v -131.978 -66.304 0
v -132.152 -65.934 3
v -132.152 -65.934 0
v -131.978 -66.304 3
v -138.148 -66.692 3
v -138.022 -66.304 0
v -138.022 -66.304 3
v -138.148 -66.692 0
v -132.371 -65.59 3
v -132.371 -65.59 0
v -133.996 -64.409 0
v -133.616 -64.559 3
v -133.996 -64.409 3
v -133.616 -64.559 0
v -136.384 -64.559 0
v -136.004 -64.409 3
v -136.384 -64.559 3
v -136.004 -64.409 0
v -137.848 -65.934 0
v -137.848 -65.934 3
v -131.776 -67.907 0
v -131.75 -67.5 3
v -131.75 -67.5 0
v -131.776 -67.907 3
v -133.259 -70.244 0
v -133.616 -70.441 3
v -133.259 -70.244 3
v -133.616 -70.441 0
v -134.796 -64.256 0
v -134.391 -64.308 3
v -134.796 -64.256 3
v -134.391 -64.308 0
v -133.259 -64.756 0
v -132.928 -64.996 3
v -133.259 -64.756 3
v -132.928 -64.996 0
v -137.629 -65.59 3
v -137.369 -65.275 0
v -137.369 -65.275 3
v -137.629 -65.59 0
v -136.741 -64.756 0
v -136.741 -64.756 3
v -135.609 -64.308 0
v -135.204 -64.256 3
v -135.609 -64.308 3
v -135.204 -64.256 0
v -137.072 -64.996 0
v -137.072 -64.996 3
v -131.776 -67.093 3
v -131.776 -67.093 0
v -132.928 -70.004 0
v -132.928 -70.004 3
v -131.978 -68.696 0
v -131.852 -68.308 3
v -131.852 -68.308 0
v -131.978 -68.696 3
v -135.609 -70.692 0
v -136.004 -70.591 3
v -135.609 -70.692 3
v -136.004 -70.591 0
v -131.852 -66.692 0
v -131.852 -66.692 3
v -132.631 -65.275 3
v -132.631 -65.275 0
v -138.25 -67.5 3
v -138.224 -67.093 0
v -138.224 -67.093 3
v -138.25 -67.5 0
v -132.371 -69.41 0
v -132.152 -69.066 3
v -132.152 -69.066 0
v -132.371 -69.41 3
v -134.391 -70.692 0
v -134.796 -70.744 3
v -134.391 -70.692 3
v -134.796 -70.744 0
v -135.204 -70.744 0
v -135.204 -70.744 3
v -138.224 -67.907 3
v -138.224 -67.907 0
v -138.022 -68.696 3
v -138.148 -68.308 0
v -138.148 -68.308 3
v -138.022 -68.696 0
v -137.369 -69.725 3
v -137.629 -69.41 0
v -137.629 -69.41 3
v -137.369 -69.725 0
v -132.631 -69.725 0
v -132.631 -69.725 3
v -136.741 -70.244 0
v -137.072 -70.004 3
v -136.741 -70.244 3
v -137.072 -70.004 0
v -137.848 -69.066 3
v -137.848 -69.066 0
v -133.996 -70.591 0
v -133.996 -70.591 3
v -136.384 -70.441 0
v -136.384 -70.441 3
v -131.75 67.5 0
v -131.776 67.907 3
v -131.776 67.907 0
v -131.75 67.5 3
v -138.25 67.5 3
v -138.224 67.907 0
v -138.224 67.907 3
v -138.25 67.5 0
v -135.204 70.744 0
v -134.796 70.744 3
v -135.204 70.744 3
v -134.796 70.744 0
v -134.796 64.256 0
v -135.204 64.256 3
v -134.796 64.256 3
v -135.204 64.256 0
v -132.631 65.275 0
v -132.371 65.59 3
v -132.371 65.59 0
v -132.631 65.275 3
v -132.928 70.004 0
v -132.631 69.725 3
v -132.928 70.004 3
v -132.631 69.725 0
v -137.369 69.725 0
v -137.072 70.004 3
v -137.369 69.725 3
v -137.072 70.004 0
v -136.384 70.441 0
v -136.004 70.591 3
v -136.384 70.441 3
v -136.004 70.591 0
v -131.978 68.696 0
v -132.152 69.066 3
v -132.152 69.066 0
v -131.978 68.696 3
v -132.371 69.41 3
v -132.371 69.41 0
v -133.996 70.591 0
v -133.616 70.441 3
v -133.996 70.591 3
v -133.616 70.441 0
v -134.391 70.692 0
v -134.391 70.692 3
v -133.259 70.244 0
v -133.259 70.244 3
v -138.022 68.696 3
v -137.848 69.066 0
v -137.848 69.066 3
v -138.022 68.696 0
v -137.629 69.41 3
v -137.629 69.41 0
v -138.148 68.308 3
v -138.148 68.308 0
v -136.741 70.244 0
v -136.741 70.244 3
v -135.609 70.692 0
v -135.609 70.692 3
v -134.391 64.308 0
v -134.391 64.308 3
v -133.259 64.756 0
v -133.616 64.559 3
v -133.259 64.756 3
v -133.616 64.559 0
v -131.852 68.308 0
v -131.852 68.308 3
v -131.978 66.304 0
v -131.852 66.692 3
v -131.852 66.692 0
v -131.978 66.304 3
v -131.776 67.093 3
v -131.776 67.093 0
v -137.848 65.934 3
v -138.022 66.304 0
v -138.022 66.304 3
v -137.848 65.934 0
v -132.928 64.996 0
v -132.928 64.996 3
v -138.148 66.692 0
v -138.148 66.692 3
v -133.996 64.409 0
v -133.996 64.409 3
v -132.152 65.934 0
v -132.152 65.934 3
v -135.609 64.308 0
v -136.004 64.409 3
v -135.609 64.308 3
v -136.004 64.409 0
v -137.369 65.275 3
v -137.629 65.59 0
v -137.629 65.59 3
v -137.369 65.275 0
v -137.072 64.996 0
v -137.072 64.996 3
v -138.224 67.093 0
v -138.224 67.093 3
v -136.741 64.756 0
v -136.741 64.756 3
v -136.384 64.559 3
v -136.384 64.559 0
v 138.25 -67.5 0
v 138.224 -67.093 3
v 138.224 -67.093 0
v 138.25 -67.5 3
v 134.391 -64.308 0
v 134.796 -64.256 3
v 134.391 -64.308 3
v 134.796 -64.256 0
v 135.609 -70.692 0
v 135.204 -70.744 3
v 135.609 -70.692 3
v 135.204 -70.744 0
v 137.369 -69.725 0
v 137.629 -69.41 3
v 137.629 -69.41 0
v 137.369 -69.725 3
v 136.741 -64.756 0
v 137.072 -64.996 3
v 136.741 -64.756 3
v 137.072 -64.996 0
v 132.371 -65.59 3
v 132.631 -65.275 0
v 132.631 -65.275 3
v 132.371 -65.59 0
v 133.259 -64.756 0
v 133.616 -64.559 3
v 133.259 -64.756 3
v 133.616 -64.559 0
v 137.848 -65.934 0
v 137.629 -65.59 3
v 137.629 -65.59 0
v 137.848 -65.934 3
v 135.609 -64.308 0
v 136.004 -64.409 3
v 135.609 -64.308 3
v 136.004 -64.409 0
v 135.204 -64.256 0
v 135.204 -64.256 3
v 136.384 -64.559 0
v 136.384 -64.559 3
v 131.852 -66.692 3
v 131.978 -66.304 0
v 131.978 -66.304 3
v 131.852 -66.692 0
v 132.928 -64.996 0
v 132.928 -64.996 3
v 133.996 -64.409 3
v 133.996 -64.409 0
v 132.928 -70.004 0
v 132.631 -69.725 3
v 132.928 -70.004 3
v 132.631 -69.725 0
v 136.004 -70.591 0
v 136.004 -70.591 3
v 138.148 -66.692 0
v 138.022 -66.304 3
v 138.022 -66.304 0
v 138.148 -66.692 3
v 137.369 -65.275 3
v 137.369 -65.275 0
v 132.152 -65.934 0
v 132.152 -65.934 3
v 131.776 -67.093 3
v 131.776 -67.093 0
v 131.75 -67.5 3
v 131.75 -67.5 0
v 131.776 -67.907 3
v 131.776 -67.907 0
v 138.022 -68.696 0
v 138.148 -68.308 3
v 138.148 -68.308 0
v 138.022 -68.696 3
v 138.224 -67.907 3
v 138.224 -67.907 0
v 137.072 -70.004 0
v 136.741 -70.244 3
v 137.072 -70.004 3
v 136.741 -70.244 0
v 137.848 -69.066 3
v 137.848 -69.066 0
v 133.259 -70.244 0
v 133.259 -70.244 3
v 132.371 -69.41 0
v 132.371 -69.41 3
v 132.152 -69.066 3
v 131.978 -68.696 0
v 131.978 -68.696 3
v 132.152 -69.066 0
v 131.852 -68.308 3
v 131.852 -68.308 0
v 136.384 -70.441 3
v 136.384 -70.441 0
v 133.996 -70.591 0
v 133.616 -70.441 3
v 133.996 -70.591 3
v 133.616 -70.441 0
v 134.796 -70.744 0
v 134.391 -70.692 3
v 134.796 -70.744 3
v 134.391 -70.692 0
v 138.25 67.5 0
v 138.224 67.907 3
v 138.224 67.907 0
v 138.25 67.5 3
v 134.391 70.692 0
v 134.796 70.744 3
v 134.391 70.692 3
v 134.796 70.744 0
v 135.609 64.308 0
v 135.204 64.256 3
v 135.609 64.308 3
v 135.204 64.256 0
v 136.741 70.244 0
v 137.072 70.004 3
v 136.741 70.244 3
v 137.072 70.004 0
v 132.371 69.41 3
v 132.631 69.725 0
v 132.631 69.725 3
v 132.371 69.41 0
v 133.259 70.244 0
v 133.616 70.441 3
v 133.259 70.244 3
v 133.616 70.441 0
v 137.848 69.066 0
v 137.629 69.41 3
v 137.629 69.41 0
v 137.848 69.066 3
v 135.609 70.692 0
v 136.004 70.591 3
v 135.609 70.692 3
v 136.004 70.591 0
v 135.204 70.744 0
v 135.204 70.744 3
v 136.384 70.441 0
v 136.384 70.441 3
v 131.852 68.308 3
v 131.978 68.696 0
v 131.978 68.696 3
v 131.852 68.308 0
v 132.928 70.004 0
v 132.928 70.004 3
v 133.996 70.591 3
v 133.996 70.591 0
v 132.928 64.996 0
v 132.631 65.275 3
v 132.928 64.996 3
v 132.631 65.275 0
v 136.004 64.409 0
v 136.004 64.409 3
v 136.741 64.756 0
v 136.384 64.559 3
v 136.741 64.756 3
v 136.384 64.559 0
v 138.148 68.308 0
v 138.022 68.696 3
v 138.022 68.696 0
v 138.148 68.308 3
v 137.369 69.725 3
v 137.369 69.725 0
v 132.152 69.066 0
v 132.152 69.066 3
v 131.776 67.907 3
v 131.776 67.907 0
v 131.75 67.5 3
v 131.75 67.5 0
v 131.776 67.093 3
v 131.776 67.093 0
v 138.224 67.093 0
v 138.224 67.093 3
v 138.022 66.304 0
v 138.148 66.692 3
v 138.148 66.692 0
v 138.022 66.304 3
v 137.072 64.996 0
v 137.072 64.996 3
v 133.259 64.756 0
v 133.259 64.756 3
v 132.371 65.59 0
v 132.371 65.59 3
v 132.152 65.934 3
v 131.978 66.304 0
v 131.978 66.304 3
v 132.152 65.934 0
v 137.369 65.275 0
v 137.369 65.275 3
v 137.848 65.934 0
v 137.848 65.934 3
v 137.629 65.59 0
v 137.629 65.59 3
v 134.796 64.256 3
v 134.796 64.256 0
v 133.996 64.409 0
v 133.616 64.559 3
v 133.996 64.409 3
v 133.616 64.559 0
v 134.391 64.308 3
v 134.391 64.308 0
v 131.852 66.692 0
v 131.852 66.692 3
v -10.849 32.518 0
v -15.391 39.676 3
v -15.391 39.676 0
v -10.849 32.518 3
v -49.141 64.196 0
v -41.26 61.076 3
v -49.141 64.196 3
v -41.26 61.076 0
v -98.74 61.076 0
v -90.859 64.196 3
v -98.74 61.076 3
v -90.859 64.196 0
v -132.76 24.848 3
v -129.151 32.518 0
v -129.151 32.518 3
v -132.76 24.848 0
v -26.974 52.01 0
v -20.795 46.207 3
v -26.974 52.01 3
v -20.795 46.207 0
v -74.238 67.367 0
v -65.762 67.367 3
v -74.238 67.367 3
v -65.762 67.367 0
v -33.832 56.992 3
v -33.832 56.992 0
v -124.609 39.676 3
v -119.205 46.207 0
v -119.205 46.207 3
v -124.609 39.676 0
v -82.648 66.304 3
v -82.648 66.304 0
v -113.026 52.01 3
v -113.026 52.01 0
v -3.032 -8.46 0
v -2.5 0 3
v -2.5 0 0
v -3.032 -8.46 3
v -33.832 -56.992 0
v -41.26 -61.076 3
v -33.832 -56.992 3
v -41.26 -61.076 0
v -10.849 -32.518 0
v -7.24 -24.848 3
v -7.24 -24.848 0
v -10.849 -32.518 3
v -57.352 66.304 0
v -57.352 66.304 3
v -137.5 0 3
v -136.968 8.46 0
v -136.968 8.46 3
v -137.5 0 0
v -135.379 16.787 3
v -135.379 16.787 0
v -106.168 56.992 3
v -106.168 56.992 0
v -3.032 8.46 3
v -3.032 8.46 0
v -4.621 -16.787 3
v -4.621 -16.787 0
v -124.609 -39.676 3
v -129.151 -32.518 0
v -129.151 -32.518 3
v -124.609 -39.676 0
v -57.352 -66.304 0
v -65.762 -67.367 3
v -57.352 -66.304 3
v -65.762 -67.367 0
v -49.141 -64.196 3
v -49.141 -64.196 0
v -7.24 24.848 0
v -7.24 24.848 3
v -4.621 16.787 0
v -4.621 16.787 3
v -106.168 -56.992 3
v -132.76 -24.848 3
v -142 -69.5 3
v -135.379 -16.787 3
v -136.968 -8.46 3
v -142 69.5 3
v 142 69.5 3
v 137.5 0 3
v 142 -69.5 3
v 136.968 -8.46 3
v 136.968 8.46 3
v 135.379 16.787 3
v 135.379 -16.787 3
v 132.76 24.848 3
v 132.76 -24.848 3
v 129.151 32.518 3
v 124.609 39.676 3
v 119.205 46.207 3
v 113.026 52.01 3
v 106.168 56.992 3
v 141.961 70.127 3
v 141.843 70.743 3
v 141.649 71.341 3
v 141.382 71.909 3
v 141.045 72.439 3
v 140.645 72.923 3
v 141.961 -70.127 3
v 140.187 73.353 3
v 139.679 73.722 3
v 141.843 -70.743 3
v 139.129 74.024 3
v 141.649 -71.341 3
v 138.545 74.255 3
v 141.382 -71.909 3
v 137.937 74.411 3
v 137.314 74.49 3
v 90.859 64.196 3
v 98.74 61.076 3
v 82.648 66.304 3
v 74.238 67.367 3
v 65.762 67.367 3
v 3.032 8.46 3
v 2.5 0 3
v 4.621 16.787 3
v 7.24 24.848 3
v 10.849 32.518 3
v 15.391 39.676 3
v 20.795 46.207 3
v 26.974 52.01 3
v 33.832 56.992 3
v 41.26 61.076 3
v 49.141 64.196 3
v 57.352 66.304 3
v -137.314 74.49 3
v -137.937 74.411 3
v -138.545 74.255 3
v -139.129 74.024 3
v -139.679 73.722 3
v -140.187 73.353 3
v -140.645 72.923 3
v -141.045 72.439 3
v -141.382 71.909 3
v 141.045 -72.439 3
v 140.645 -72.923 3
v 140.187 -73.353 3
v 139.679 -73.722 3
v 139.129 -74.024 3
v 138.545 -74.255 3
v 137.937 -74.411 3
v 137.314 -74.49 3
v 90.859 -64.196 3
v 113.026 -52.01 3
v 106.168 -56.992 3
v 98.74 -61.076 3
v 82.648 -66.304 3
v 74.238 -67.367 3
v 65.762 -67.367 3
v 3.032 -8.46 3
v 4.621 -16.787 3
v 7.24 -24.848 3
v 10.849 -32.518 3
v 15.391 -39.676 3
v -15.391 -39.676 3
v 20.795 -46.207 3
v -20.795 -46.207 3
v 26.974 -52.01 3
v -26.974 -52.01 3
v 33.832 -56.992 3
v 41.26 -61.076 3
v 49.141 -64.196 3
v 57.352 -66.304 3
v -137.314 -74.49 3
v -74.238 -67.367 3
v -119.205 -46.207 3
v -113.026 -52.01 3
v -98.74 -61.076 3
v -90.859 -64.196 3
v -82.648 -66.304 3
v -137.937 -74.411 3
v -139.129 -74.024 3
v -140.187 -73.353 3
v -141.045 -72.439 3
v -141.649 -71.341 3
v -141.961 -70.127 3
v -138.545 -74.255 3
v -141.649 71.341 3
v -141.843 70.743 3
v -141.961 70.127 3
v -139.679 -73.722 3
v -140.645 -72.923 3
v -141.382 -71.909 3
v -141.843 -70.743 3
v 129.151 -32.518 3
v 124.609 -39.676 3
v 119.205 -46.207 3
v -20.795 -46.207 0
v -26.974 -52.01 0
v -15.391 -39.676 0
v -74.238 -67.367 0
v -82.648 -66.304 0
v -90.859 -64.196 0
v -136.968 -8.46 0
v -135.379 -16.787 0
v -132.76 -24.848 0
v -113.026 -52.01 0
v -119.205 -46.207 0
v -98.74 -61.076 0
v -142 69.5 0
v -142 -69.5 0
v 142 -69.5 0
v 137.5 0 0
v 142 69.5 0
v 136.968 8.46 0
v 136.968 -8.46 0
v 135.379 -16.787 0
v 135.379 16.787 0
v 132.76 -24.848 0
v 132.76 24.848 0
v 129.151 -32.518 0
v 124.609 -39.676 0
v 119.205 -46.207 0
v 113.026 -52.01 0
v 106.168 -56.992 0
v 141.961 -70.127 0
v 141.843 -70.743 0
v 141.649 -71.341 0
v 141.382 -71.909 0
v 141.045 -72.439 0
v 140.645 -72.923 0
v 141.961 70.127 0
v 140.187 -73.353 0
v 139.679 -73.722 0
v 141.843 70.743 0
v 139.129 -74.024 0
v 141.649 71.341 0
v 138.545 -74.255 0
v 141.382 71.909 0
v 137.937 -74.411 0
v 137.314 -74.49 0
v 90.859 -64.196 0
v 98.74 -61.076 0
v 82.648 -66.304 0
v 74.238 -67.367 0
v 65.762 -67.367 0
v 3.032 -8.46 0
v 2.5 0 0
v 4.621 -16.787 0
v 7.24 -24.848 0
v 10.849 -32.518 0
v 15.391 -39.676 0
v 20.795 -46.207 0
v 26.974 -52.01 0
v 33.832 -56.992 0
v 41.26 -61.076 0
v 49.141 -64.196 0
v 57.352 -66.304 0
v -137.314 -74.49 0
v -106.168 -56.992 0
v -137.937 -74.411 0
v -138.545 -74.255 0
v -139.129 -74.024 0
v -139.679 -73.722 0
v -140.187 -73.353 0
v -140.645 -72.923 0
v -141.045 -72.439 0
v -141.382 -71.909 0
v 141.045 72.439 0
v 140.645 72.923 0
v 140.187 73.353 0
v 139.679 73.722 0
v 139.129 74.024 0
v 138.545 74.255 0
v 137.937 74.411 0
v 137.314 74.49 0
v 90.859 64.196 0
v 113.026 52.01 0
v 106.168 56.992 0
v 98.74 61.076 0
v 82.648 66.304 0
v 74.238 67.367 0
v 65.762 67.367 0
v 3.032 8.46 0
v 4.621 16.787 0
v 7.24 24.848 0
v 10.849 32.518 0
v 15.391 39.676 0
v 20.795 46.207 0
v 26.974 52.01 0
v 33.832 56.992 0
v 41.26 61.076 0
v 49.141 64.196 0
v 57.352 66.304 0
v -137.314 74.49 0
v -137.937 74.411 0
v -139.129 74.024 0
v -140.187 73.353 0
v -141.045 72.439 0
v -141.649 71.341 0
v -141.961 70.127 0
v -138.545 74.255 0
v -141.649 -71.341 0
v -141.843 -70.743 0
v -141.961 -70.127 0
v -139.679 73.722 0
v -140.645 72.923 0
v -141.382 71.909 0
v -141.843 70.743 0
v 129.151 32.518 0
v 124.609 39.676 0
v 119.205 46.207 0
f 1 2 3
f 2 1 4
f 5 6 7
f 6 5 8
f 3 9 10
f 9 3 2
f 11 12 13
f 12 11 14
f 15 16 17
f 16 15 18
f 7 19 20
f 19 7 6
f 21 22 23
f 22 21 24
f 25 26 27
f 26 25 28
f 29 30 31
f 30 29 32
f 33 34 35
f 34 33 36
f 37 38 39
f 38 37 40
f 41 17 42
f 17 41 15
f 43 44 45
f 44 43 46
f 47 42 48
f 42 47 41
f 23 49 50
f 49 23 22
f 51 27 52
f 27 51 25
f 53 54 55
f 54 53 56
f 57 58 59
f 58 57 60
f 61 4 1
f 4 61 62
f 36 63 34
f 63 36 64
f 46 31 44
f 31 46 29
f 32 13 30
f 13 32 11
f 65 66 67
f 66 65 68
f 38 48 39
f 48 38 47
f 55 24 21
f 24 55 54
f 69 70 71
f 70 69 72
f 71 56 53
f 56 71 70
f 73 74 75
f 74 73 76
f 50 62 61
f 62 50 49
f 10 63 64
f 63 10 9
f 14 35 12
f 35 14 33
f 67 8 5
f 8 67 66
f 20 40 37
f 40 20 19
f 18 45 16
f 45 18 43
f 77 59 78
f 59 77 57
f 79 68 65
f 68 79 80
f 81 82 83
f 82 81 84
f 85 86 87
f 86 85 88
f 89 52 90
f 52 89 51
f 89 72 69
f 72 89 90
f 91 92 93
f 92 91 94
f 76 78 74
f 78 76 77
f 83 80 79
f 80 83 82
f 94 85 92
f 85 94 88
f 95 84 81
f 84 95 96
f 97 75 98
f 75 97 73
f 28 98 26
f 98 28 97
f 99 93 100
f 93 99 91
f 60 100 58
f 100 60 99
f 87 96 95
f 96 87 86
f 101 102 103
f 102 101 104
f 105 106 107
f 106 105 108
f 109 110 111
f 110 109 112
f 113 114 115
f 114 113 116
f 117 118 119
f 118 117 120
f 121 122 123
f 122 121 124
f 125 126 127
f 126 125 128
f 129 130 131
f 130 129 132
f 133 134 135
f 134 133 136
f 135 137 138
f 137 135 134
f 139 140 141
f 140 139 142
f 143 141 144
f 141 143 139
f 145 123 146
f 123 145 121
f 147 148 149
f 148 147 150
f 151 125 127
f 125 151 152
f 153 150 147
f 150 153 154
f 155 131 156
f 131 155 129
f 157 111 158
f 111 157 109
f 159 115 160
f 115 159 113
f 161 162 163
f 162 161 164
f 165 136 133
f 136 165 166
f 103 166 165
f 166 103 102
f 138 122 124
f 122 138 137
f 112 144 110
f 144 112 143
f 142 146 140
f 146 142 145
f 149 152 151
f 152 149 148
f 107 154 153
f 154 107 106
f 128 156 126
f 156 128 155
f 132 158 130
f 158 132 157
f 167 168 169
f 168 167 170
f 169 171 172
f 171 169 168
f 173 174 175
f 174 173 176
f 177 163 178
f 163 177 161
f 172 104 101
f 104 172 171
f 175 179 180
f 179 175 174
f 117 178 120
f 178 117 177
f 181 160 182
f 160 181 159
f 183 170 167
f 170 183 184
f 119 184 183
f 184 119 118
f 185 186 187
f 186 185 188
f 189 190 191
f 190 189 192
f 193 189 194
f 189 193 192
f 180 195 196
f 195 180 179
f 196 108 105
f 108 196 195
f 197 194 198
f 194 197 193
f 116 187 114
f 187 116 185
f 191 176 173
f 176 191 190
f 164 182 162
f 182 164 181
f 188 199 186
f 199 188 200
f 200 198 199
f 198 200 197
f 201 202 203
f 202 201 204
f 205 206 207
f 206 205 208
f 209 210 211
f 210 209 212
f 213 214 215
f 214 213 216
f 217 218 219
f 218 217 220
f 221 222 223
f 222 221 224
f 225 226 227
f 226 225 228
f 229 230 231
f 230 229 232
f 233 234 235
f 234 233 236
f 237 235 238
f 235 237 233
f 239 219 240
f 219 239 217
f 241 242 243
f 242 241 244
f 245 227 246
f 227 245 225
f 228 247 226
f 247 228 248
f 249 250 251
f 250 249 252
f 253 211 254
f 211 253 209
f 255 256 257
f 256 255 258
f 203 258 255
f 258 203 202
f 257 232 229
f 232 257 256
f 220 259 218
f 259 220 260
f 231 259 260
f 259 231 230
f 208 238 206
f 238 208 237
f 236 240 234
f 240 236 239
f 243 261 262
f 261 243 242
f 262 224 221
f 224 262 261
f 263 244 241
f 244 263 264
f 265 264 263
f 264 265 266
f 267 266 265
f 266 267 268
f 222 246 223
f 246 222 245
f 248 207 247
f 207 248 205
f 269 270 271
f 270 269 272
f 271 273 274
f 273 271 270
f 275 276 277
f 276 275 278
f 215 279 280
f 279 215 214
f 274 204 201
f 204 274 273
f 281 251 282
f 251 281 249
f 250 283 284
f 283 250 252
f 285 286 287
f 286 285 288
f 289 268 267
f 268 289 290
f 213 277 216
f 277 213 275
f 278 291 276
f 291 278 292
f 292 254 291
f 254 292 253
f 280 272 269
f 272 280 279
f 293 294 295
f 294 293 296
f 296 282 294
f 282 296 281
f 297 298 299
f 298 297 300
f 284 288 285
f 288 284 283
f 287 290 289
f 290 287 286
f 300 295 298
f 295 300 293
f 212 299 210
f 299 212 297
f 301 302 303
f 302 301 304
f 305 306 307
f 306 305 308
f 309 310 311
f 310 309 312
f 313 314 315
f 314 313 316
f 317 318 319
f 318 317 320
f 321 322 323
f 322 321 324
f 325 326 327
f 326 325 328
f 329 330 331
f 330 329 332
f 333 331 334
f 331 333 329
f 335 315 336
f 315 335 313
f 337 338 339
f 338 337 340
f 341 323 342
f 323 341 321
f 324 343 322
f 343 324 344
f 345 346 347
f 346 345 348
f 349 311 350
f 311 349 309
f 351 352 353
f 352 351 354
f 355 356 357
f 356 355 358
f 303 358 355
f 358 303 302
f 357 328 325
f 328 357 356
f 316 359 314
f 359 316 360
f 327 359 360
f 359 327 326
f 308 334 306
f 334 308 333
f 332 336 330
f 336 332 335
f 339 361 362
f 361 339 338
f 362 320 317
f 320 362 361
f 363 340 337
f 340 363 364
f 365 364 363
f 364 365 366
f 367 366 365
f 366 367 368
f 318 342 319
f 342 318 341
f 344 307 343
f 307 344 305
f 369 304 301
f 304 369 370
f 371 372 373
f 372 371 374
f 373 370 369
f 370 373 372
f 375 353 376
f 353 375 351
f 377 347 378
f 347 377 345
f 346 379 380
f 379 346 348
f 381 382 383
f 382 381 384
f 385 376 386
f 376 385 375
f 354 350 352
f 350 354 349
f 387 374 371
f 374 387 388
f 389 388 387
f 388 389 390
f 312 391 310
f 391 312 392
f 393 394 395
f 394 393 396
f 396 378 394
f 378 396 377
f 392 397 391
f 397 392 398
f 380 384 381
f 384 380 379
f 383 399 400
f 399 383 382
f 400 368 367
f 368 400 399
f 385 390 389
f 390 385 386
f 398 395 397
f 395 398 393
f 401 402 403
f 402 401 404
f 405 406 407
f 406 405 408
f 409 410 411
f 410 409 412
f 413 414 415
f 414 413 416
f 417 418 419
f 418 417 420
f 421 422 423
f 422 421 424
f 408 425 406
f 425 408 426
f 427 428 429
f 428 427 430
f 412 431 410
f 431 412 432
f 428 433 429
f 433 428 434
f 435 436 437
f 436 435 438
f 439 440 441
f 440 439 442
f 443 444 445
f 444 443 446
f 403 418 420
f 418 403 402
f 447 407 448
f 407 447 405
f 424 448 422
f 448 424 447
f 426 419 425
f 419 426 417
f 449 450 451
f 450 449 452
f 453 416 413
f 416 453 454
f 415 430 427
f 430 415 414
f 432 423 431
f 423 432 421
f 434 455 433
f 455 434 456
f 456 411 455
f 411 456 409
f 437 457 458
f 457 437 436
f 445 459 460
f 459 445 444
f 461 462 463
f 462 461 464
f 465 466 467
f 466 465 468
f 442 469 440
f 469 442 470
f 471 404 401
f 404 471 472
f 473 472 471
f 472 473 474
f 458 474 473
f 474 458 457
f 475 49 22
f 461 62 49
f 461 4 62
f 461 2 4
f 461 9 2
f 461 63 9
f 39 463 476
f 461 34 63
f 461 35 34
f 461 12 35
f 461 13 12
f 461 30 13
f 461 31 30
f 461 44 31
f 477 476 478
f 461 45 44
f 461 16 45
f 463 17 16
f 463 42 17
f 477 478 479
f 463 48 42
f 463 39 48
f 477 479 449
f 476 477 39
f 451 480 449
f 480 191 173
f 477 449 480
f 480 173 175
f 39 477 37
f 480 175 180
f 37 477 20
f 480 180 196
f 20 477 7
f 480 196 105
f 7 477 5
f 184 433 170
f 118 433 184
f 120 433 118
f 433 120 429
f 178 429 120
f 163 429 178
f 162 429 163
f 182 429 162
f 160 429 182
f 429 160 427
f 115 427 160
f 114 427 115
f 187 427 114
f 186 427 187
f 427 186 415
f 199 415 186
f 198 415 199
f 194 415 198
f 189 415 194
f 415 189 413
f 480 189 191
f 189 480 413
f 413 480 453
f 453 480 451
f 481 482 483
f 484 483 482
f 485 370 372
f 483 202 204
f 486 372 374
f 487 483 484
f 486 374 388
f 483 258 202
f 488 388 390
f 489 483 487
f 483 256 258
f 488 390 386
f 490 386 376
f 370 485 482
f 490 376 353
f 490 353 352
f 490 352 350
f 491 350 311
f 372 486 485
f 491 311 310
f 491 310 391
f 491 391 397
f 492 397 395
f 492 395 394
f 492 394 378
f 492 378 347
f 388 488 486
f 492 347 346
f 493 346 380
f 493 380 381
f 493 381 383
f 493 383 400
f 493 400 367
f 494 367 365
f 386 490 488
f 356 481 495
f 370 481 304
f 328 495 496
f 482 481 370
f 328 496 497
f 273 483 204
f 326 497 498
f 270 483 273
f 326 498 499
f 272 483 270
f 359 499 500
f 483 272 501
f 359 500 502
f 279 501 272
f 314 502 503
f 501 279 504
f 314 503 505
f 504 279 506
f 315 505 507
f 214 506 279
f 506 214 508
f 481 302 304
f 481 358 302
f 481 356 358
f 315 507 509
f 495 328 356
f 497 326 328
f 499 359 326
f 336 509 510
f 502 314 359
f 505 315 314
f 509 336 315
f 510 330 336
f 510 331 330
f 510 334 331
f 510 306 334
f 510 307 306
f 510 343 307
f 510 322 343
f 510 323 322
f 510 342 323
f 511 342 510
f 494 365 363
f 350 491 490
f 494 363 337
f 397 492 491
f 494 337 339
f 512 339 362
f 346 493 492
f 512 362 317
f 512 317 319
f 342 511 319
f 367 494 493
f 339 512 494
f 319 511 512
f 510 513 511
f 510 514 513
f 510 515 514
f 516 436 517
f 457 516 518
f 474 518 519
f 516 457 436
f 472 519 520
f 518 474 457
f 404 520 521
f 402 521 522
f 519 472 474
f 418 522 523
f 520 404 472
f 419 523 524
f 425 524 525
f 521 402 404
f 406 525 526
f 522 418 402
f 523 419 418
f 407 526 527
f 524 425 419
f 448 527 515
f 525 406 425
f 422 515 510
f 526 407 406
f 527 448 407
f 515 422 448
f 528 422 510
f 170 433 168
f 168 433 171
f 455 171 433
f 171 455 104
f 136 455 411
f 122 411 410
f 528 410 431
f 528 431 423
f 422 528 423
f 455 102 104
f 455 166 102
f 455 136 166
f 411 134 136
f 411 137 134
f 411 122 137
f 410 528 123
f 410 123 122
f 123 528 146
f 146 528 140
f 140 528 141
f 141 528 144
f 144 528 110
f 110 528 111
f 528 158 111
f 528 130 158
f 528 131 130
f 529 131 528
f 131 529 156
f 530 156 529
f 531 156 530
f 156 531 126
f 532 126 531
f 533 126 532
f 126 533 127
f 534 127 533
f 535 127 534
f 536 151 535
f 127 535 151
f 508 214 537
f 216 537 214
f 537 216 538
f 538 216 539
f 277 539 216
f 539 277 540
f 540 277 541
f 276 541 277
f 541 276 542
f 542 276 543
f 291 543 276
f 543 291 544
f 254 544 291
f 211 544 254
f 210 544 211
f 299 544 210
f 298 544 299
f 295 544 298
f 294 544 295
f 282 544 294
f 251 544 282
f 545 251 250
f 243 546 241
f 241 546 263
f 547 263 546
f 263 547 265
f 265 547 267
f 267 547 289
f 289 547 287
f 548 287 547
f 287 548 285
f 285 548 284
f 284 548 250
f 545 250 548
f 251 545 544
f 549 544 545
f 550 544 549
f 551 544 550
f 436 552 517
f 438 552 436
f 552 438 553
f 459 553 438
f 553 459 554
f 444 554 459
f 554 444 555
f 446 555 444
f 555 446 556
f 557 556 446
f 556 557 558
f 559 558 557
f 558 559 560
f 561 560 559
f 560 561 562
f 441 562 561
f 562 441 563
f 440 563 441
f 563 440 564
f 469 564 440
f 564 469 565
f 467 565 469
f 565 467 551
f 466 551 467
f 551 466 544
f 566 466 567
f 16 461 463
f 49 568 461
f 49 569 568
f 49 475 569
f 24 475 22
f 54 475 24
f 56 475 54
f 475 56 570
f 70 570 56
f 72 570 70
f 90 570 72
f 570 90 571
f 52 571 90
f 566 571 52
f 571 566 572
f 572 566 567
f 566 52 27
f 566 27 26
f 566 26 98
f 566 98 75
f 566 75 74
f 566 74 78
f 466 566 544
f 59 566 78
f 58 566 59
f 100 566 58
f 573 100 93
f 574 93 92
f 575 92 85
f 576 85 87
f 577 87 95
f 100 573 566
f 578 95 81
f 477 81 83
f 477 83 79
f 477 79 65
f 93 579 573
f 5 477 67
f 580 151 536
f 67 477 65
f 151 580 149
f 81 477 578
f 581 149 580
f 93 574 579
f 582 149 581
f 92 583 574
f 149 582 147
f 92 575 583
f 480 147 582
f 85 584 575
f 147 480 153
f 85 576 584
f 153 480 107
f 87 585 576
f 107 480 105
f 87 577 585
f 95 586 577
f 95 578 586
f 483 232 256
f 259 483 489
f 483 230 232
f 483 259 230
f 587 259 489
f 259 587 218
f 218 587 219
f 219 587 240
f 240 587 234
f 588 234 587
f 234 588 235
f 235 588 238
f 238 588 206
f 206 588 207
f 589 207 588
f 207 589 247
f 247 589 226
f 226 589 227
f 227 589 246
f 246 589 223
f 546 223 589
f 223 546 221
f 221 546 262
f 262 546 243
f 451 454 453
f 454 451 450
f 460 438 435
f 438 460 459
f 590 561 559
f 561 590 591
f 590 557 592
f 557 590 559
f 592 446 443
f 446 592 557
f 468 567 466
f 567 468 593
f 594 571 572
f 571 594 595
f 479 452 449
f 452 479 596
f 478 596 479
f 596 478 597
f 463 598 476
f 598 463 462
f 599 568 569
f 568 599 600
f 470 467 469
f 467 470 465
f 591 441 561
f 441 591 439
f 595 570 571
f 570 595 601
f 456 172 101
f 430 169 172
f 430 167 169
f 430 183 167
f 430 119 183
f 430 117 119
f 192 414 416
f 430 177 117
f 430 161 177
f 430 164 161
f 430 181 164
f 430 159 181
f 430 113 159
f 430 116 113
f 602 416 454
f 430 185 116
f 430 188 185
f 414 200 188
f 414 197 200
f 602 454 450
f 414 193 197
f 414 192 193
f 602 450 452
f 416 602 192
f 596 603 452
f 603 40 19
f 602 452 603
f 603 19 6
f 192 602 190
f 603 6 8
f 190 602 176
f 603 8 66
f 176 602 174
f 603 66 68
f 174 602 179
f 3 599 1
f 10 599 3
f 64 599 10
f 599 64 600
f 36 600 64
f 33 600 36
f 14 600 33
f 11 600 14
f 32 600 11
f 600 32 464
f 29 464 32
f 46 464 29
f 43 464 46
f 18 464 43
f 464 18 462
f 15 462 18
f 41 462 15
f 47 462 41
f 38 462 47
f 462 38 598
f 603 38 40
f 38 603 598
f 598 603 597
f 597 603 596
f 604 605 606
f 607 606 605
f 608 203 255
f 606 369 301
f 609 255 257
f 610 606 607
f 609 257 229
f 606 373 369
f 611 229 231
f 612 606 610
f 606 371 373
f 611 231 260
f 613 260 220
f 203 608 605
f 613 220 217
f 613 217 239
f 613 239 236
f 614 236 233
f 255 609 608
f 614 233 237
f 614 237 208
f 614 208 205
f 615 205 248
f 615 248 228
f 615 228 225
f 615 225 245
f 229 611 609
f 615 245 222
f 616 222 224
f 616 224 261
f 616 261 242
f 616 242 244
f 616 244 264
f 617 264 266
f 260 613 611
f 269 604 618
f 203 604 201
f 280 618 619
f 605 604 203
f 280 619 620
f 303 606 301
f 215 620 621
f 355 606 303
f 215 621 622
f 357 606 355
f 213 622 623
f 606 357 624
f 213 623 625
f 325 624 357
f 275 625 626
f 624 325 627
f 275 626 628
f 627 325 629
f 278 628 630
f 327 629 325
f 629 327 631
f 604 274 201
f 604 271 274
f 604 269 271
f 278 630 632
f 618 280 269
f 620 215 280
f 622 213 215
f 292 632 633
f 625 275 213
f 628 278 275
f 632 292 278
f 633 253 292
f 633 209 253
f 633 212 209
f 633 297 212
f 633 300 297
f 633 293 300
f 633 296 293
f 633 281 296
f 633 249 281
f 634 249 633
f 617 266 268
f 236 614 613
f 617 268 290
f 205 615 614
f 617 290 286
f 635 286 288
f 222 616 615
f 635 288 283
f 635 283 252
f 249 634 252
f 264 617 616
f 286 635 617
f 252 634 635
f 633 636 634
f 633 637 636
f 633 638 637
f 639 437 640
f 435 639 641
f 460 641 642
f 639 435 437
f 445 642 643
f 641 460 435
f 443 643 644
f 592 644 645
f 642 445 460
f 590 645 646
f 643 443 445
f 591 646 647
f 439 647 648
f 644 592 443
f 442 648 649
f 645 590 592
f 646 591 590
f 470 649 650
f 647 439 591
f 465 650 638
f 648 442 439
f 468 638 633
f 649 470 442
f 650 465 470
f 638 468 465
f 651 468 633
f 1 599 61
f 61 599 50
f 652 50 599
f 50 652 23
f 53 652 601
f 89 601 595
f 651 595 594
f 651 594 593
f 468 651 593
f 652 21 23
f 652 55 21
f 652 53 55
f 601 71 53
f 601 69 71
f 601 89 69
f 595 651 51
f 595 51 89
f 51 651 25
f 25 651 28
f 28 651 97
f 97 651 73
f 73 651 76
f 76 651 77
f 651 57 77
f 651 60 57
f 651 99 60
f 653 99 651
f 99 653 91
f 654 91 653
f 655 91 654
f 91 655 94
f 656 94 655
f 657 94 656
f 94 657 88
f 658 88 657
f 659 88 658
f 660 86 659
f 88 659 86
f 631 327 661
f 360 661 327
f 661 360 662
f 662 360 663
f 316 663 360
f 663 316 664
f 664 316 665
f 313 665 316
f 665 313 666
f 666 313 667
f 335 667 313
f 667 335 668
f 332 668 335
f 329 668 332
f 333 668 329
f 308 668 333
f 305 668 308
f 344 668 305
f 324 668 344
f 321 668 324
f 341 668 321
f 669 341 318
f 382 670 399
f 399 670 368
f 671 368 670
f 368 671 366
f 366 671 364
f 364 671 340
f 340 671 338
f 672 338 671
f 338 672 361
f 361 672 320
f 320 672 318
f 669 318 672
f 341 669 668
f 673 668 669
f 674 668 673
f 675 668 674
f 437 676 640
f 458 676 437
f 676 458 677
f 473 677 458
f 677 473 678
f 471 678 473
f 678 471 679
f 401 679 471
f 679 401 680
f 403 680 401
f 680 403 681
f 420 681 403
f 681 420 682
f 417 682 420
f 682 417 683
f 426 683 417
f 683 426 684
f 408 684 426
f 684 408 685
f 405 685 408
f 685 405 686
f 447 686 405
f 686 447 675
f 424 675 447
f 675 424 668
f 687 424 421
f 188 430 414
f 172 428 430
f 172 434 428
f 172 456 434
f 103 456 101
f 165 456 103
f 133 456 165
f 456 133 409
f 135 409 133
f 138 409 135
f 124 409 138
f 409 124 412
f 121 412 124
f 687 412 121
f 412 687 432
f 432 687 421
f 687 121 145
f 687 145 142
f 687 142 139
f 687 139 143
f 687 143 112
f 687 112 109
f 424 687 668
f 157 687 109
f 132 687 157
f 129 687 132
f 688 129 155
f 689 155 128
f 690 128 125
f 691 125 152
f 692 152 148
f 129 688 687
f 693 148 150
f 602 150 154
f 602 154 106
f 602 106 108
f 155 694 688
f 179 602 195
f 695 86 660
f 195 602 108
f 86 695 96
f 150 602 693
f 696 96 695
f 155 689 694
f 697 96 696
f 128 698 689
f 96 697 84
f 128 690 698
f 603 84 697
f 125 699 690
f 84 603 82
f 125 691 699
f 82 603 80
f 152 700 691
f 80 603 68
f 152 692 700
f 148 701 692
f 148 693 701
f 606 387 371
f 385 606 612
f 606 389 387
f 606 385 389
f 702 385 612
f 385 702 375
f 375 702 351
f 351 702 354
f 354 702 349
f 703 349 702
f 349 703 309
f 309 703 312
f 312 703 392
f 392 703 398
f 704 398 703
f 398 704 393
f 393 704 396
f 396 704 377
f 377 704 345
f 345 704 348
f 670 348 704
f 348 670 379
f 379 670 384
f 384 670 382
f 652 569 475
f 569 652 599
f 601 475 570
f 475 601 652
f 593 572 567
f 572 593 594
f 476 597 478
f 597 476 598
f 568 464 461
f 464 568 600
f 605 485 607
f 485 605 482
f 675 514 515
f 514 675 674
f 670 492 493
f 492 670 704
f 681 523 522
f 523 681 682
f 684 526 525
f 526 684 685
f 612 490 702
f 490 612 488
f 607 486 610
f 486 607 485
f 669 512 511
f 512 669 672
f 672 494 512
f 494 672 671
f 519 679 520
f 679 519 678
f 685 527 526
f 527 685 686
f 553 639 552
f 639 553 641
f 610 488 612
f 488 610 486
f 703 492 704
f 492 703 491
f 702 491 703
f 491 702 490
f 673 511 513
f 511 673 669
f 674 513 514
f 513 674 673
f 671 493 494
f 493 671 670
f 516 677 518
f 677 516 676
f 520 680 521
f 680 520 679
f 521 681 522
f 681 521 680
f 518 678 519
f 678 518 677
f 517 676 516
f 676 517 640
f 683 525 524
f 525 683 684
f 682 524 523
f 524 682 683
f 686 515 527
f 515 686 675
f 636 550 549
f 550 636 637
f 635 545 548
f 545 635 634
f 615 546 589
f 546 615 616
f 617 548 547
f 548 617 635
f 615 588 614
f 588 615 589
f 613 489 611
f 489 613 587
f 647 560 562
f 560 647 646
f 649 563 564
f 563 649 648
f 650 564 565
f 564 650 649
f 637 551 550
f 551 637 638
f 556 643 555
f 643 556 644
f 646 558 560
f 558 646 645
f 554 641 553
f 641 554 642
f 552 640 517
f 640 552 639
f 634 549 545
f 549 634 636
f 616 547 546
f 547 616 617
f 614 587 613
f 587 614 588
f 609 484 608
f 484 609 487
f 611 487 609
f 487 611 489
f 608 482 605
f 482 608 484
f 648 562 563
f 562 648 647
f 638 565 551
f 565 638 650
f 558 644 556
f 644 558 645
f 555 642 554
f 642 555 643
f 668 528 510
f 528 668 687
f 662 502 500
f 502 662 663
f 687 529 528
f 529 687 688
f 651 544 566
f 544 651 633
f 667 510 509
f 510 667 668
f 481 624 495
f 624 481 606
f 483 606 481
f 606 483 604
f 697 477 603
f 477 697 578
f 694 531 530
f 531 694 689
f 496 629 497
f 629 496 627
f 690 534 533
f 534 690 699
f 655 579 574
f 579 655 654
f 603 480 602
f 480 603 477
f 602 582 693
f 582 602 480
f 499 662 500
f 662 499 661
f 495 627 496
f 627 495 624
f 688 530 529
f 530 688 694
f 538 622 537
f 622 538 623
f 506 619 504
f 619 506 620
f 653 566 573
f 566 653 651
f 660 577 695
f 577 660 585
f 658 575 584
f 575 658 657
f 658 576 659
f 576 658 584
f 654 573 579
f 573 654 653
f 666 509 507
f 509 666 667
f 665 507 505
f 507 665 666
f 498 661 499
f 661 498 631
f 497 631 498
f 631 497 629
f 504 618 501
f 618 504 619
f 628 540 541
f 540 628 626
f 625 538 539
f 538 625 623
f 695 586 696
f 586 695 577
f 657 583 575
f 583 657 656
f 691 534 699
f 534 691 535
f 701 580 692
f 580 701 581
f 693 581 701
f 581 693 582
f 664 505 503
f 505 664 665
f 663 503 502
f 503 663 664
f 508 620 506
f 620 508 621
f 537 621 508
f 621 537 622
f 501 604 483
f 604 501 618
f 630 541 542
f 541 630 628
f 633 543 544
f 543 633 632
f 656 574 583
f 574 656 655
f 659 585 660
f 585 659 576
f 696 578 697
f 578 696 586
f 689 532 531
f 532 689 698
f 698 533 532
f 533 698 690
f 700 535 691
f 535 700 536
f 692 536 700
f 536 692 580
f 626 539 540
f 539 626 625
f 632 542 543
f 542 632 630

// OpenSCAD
$fn = 50;


difference() {
	union() {
		hull() {
			translate(v = [-137.0000000000, 69.5000000000, 0]) {
				cylinder(h = 3, r = 5);
			}
			translate(v = [137.0000000000, 69.5000000000, 0]) {
				cylinder(h = 3, r = 5);
			}
			translate(v = [-137.0000000000, -69.5000000000, 0]) {
				cylinder(h = 3, r = 5);
			}
			translate(v = [137.0000000000, -69.5000000000, 0]) {
				cylinder(h = 3, r = 5);
			}
		}
	}
	union() {
		#translate(v = [-135.0000000000, -67.5000000000, -100.0000000000]) {
			cylinder(h = 200, r = 3.2500000000);
		}
		#translate(v = [-135.0000000000, 67.5000000000, -100.0000000000]) {
			cylinder(h = 200, r = 3.2500000000);
		}
		#translate(v = [135.0000000000, -67.5000000000, -100.0000000000]) {
			cylinder(h = 200, r = 3.2500000000);
		}
		#translate(v = [135.0000000000, 67.5000000000, -100.0000000000]) {
			cylinder(h = 200, r = 3.2500000000);
		}
		#translate(v = [-70.0000000000, 0, 0]) {
			cylinder(h = 3, r = 67.5000000000);
		}
		#translate(v = [70.0000000000, 0, 0]) {
			cylinder(h = 3, r = 67.5000000000);
		}
	}
}
